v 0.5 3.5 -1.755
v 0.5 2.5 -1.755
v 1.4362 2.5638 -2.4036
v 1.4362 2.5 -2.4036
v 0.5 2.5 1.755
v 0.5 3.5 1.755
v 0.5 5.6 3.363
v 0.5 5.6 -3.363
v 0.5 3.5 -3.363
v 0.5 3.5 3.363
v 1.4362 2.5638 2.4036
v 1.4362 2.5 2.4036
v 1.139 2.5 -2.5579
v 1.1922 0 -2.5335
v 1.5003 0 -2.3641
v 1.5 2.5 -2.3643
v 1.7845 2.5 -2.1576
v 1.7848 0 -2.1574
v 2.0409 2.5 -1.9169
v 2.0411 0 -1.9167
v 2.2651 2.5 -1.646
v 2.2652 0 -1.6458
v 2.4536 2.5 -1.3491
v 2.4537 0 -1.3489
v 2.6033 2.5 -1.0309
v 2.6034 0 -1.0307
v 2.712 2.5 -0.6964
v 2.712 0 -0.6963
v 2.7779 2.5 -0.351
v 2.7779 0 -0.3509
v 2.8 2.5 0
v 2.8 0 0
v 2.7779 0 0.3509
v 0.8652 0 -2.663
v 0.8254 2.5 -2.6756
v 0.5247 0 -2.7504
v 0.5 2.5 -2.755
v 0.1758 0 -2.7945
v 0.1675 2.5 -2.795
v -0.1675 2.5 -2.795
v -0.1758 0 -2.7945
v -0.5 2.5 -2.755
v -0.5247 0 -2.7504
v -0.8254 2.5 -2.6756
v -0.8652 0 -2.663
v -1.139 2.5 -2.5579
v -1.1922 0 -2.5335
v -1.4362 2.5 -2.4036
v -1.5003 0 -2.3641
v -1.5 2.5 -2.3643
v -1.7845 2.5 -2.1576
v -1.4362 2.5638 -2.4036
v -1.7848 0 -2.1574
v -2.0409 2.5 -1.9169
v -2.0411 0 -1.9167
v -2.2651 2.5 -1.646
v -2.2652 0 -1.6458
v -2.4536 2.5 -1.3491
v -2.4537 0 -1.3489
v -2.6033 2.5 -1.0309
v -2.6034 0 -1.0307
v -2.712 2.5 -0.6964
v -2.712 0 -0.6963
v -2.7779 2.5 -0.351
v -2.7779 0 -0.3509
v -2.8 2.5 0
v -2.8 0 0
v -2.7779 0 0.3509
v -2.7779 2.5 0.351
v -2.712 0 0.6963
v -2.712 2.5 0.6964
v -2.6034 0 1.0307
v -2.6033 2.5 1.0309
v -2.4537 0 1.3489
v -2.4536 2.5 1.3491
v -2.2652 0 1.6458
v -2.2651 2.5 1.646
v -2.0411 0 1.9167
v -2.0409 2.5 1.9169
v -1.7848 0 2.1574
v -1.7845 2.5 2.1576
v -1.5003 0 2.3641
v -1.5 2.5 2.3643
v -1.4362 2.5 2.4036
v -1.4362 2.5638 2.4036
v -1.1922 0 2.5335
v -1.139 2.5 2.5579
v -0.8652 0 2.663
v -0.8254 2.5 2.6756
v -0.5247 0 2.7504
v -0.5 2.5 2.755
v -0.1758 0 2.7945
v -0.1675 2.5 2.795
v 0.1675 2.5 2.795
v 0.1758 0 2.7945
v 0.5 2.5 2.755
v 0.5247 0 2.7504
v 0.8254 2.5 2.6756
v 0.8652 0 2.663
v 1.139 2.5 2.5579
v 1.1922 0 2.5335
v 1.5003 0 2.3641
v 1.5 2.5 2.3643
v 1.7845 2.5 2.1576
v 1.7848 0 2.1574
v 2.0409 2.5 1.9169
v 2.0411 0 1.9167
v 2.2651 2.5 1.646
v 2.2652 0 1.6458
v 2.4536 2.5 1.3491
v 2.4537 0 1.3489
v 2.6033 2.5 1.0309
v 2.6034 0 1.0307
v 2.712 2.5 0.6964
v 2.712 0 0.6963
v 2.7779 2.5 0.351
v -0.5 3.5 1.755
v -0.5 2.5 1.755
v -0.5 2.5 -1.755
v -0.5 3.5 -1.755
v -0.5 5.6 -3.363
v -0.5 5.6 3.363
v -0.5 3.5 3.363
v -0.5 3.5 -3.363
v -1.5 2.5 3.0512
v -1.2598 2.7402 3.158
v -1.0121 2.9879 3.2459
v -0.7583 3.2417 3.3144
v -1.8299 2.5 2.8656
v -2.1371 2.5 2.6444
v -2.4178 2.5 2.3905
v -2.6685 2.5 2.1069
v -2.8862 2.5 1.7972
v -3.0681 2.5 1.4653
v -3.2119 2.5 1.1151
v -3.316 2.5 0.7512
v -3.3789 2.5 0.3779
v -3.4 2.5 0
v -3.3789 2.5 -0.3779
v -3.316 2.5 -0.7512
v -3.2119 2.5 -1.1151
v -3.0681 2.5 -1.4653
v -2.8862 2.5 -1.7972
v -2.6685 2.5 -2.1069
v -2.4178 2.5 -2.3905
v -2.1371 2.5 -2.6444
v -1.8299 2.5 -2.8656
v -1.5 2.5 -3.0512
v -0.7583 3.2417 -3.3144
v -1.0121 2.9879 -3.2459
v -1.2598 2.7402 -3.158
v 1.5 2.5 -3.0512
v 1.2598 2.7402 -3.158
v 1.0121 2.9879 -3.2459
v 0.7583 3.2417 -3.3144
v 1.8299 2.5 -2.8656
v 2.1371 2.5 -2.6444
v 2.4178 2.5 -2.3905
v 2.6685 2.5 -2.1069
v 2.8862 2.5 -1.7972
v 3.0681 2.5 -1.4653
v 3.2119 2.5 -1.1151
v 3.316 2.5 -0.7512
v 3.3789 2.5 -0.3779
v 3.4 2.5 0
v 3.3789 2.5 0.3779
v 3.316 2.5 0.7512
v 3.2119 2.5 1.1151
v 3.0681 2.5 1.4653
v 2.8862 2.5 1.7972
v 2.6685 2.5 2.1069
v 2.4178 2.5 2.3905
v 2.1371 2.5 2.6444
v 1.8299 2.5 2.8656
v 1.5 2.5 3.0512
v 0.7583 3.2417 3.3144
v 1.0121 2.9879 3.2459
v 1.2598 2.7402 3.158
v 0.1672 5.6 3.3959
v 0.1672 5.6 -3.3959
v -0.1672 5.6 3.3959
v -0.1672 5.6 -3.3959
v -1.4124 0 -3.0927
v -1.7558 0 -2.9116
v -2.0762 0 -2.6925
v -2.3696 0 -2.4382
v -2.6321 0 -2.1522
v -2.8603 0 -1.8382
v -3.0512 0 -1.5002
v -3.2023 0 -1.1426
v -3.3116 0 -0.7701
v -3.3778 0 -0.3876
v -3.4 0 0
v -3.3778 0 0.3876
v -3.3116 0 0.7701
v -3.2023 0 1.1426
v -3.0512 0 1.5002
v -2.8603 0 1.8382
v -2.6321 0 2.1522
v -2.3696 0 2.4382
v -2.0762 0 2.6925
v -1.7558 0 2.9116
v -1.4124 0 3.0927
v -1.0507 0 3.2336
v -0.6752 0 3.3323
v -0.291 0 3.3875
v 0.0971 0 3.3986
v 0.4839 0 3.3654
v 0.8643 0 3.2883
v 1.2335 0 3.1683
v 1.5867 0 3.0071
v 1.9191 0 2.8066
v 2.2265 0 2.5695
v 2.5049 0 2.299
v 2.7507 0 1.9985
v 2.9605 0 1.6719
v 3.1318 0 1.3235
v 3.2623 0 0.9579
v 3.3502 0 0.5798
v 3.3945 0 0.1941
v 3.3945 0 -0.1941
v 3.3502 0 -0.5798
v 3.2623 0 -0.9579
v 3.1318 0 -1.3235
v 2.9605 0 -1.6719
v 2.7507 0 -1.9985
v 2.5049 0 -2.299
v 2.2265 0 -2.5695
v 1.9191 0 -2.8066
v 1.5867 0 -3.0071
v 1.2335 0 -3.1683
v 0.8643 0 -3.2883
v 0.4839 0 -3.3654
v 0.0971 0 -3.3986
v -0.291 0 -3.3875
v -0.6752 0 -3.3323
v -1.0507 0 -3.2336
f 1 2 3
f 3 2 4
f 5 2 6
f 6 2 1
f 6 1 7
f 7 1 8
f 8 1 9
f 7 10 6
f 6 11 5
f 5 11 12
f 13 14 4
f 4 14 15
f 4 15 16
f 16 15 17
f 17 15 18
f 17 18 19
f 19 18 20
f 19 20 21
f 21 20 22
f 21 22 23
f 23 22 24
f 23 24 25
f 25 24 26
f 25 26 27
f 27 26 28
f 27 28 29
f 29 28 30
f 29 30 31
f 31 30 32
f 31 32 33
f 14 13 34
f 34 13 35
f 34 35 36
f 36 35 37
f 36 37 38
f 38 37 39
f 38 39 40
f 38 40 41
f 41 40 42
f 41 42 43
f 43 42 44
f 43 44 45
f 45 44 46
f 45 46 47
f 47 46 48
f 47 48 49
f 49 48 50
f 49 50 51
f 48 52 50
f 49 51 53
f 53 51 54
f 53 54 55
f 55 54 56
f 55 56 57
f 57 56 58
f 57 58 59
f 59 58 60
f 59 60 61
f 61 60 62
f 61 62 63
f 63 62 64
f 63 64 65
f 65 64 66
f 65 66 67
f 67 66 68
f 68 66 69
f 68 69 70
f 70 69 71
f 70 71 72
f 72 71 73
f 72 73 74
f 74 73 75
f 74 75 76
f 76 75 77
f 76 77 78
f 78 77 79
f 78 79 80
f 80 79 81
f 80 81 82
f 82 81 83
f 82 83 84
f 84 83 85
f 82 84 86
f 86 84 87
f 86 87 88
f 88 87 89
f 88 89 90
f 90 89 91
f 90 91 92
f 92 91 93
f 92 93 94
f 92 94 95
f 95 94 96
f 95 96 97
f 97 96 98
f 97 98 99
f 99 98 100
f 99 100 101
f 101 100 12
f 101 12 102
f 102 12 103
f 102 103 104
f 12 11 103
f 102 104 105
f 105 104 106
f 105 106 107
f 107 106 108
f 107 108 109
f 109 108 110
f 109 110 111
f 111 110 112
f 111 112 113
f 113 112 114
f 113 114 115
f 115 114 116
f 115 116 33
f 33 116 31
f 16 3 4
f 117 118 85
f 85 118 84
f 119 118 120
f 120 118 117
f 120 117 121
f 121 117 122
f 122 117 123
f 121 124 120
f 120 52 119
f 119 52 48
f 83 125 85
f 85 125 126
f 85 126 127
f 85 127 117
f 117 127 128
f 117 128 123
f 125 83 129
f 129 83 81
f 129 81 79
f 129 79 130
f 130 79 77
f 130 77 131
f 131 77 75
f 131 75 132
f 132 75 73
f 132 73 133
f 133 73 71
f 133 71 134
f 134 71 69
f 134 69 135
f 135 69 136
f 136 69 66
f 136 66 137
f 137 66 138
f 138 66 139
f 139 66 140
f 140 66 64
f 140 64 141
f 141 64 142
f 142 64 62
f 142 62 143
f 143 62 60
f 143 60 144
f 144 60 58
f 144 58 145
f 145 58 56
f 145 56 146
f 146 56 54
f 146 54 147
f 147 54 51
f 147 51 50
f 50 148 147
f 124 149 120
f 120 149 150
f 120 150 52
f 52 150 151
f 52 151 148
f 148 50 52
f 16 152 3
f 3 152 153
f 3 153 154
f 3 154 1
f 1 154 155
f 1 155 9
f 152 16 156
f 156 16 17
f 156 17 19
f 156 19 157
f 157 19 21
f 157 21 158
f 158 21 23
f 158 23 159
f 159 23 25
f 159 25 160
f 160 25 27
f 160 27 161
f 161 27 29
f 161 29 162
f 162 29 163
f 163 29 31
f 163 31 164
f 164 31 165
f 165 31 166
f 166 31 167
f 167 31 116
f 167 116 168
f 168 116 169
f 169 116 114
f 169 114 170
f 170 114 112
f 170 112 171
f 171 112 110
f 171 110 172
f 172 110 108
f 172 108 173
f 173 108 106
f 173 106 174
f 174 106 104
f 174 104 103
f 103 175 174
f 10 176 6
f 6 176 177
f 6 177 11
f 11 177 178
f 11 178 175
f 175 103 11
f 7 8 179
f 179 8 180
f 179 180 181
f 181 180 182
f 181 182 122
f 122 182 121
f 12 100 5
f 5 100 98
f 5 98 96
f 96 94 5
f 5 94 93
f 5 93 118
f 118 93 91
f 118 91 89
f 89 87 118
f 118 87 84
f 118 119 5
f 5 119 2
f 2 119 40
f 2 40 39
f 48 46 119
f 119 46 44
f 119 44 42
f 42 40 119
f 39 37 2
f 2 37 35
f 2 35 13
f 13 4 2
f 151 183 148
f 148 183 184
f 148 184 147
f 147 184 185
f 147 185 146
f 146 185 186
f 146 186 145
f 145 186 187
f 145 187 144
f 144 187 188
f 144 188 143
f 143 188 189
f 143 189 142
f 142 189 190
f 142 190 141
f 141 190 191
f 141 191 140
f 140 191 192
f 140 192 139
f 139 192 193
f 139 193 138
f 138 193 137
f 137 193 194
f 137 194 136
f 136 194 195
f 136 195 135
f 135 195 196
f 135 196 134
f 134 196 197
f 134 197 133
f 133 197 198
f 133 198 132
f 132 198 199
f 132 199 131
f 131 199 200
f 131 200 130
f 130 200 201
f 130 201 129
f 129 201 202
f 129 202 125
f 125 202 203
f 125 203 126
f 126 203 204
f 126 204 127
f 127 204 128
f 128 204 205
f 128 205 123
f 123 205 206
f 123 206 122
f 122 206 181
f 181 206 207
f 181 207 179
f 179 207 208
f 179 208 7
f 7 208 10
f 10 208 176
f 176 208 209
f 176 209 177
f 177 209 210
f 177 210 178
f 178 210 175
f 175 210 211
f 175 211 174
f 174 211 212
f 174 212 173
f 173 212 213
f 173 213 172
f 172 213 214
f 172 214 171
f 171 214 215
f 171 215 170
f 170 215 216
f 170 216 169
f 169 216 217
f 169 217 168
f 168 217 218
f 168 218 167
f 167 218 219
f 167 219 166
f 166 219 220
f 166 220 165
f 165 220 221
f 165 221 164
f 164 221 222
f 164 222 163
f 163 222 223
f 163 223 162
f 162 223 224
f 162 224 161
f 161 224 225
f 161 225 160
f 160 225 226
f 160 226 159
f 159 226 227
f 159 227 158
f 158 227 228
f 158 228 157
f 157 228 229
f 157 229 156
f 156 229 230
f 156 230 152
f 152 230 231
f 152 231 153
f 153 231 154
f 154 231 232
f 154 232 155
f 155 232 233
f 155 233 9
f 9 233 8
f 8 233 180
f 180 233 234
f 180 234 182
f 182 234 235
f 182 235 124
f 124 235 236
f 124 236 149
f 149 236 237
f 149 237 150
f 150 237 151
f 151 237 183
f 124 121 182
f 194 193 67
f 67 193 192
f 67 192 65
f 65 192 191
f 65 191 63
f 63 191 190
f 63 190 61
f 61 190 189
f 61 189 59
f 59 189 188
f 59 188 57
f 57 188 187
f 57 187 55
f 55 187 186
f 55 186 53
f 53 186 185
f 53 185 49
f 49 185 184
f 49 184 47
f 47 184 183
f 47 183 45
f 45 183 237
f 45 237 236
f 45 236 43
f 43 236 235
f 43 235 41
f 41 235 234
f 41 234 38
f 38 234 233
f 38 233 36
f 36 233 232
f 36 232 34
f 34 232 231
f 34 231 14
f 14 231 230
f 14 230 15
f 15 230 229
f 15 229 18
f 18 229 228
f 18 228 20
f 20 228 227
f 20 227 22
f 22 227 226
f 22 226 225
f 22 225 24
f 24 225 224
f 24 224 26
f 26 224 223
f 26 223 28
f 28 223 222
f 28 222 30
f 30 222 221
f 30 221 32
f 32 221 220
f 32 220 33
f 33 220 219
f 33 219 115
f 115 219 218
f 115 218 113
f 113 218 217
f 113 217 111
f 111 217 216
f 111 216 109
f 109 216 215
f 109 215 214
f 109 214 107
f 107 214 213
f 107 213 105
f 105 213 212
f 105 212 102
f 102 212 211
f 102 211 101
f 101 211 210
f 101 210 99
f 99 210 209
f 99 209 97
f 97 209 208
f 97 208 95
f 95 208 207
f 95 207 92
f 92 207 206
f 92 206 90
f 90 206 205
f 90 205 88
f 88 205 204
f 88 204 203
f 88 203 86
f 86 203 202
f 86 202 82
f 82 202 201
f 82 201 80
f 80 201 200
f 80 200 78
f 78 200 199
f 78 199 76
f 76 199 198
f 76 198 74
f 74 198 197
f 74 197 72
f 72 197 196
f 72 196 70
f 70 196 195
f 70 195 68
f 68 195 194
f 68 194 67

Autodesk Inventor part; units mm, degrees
ref_plane "YZ Plane" through (0, 0, 0) normal (1, 0, 0) x (0, 1, 0)
ref_plane "XZ Plane" through (0, 0, 0) normal (0, 1, 0) x (-1, 0, 0)
ref_plane "XY Plane" through (0, 0, 0) normal (0, 0, 1) x (1, 0, 0)
sketch "스케치1" plane through (0, 0, 0) normal (0, 1, 0) x (-1, 0, 0)
  circle A0 centre (0, 0) radius 2.8
  circle A1 centre (0, 0) radius 3.4
  dimension "d0" = 5.6
  dimension "d1" = 6.8
extrude "돌출1" add sketch "스케치1" along normal blind 2.5
sketch "스케치2" plane through (0, 2.5, 0) normal (0, 1, 0) x (1, 0, 0)
  circle A0 centre (0, 0) radius 3.4 projected
  circle A1 centre (0, 0) radius 3.4 projected
  line L0 (0.5, 3.363) -> (-0.5, 3.363)
  line L1 (-0.5, 3.363) -> (-0.5, -3.363)
  line L2 (-0.5, -3.363) -> (0.5, -3.363)
  line L3 (0.5, -3.363) -> (0.5, 3.363)
  line L4 (0.5, 3.363) -> (-0.5, -3.363) construction
  line L5 (-0.5, 3.363) -> (0.5, -3.363) construction
  point P0 (-0.5, -3.363)
  point P1 (0.5, -3.363)
  point P2 (0.5, 3.363)
  point P3 (-0.5, 3.363)
  dimension "d4" = 1
extrude "돌출2" add sketch "스케치2" along normal blind 3.1 contours L0 A0 | L3 L2 L1 L0 | A0 L2
chamfer "모따기1" distance 1 angle 45 4 edges at (0.5, 2.5, 3.059) (0.5, 2.5, -3.059) (-0.5, 2.5, -3.059) (-0.5, 2.5, 3.059)
chamfer "모따기2" distance 1 angle 45 4 edges at (-0.5, 3, -2.755) (-0.5, 3, 2.755) (0.5, 3, 2.755) (0.5, 3, -2.755)
properties part number "terminalcap_4.1mm_addon_large"
